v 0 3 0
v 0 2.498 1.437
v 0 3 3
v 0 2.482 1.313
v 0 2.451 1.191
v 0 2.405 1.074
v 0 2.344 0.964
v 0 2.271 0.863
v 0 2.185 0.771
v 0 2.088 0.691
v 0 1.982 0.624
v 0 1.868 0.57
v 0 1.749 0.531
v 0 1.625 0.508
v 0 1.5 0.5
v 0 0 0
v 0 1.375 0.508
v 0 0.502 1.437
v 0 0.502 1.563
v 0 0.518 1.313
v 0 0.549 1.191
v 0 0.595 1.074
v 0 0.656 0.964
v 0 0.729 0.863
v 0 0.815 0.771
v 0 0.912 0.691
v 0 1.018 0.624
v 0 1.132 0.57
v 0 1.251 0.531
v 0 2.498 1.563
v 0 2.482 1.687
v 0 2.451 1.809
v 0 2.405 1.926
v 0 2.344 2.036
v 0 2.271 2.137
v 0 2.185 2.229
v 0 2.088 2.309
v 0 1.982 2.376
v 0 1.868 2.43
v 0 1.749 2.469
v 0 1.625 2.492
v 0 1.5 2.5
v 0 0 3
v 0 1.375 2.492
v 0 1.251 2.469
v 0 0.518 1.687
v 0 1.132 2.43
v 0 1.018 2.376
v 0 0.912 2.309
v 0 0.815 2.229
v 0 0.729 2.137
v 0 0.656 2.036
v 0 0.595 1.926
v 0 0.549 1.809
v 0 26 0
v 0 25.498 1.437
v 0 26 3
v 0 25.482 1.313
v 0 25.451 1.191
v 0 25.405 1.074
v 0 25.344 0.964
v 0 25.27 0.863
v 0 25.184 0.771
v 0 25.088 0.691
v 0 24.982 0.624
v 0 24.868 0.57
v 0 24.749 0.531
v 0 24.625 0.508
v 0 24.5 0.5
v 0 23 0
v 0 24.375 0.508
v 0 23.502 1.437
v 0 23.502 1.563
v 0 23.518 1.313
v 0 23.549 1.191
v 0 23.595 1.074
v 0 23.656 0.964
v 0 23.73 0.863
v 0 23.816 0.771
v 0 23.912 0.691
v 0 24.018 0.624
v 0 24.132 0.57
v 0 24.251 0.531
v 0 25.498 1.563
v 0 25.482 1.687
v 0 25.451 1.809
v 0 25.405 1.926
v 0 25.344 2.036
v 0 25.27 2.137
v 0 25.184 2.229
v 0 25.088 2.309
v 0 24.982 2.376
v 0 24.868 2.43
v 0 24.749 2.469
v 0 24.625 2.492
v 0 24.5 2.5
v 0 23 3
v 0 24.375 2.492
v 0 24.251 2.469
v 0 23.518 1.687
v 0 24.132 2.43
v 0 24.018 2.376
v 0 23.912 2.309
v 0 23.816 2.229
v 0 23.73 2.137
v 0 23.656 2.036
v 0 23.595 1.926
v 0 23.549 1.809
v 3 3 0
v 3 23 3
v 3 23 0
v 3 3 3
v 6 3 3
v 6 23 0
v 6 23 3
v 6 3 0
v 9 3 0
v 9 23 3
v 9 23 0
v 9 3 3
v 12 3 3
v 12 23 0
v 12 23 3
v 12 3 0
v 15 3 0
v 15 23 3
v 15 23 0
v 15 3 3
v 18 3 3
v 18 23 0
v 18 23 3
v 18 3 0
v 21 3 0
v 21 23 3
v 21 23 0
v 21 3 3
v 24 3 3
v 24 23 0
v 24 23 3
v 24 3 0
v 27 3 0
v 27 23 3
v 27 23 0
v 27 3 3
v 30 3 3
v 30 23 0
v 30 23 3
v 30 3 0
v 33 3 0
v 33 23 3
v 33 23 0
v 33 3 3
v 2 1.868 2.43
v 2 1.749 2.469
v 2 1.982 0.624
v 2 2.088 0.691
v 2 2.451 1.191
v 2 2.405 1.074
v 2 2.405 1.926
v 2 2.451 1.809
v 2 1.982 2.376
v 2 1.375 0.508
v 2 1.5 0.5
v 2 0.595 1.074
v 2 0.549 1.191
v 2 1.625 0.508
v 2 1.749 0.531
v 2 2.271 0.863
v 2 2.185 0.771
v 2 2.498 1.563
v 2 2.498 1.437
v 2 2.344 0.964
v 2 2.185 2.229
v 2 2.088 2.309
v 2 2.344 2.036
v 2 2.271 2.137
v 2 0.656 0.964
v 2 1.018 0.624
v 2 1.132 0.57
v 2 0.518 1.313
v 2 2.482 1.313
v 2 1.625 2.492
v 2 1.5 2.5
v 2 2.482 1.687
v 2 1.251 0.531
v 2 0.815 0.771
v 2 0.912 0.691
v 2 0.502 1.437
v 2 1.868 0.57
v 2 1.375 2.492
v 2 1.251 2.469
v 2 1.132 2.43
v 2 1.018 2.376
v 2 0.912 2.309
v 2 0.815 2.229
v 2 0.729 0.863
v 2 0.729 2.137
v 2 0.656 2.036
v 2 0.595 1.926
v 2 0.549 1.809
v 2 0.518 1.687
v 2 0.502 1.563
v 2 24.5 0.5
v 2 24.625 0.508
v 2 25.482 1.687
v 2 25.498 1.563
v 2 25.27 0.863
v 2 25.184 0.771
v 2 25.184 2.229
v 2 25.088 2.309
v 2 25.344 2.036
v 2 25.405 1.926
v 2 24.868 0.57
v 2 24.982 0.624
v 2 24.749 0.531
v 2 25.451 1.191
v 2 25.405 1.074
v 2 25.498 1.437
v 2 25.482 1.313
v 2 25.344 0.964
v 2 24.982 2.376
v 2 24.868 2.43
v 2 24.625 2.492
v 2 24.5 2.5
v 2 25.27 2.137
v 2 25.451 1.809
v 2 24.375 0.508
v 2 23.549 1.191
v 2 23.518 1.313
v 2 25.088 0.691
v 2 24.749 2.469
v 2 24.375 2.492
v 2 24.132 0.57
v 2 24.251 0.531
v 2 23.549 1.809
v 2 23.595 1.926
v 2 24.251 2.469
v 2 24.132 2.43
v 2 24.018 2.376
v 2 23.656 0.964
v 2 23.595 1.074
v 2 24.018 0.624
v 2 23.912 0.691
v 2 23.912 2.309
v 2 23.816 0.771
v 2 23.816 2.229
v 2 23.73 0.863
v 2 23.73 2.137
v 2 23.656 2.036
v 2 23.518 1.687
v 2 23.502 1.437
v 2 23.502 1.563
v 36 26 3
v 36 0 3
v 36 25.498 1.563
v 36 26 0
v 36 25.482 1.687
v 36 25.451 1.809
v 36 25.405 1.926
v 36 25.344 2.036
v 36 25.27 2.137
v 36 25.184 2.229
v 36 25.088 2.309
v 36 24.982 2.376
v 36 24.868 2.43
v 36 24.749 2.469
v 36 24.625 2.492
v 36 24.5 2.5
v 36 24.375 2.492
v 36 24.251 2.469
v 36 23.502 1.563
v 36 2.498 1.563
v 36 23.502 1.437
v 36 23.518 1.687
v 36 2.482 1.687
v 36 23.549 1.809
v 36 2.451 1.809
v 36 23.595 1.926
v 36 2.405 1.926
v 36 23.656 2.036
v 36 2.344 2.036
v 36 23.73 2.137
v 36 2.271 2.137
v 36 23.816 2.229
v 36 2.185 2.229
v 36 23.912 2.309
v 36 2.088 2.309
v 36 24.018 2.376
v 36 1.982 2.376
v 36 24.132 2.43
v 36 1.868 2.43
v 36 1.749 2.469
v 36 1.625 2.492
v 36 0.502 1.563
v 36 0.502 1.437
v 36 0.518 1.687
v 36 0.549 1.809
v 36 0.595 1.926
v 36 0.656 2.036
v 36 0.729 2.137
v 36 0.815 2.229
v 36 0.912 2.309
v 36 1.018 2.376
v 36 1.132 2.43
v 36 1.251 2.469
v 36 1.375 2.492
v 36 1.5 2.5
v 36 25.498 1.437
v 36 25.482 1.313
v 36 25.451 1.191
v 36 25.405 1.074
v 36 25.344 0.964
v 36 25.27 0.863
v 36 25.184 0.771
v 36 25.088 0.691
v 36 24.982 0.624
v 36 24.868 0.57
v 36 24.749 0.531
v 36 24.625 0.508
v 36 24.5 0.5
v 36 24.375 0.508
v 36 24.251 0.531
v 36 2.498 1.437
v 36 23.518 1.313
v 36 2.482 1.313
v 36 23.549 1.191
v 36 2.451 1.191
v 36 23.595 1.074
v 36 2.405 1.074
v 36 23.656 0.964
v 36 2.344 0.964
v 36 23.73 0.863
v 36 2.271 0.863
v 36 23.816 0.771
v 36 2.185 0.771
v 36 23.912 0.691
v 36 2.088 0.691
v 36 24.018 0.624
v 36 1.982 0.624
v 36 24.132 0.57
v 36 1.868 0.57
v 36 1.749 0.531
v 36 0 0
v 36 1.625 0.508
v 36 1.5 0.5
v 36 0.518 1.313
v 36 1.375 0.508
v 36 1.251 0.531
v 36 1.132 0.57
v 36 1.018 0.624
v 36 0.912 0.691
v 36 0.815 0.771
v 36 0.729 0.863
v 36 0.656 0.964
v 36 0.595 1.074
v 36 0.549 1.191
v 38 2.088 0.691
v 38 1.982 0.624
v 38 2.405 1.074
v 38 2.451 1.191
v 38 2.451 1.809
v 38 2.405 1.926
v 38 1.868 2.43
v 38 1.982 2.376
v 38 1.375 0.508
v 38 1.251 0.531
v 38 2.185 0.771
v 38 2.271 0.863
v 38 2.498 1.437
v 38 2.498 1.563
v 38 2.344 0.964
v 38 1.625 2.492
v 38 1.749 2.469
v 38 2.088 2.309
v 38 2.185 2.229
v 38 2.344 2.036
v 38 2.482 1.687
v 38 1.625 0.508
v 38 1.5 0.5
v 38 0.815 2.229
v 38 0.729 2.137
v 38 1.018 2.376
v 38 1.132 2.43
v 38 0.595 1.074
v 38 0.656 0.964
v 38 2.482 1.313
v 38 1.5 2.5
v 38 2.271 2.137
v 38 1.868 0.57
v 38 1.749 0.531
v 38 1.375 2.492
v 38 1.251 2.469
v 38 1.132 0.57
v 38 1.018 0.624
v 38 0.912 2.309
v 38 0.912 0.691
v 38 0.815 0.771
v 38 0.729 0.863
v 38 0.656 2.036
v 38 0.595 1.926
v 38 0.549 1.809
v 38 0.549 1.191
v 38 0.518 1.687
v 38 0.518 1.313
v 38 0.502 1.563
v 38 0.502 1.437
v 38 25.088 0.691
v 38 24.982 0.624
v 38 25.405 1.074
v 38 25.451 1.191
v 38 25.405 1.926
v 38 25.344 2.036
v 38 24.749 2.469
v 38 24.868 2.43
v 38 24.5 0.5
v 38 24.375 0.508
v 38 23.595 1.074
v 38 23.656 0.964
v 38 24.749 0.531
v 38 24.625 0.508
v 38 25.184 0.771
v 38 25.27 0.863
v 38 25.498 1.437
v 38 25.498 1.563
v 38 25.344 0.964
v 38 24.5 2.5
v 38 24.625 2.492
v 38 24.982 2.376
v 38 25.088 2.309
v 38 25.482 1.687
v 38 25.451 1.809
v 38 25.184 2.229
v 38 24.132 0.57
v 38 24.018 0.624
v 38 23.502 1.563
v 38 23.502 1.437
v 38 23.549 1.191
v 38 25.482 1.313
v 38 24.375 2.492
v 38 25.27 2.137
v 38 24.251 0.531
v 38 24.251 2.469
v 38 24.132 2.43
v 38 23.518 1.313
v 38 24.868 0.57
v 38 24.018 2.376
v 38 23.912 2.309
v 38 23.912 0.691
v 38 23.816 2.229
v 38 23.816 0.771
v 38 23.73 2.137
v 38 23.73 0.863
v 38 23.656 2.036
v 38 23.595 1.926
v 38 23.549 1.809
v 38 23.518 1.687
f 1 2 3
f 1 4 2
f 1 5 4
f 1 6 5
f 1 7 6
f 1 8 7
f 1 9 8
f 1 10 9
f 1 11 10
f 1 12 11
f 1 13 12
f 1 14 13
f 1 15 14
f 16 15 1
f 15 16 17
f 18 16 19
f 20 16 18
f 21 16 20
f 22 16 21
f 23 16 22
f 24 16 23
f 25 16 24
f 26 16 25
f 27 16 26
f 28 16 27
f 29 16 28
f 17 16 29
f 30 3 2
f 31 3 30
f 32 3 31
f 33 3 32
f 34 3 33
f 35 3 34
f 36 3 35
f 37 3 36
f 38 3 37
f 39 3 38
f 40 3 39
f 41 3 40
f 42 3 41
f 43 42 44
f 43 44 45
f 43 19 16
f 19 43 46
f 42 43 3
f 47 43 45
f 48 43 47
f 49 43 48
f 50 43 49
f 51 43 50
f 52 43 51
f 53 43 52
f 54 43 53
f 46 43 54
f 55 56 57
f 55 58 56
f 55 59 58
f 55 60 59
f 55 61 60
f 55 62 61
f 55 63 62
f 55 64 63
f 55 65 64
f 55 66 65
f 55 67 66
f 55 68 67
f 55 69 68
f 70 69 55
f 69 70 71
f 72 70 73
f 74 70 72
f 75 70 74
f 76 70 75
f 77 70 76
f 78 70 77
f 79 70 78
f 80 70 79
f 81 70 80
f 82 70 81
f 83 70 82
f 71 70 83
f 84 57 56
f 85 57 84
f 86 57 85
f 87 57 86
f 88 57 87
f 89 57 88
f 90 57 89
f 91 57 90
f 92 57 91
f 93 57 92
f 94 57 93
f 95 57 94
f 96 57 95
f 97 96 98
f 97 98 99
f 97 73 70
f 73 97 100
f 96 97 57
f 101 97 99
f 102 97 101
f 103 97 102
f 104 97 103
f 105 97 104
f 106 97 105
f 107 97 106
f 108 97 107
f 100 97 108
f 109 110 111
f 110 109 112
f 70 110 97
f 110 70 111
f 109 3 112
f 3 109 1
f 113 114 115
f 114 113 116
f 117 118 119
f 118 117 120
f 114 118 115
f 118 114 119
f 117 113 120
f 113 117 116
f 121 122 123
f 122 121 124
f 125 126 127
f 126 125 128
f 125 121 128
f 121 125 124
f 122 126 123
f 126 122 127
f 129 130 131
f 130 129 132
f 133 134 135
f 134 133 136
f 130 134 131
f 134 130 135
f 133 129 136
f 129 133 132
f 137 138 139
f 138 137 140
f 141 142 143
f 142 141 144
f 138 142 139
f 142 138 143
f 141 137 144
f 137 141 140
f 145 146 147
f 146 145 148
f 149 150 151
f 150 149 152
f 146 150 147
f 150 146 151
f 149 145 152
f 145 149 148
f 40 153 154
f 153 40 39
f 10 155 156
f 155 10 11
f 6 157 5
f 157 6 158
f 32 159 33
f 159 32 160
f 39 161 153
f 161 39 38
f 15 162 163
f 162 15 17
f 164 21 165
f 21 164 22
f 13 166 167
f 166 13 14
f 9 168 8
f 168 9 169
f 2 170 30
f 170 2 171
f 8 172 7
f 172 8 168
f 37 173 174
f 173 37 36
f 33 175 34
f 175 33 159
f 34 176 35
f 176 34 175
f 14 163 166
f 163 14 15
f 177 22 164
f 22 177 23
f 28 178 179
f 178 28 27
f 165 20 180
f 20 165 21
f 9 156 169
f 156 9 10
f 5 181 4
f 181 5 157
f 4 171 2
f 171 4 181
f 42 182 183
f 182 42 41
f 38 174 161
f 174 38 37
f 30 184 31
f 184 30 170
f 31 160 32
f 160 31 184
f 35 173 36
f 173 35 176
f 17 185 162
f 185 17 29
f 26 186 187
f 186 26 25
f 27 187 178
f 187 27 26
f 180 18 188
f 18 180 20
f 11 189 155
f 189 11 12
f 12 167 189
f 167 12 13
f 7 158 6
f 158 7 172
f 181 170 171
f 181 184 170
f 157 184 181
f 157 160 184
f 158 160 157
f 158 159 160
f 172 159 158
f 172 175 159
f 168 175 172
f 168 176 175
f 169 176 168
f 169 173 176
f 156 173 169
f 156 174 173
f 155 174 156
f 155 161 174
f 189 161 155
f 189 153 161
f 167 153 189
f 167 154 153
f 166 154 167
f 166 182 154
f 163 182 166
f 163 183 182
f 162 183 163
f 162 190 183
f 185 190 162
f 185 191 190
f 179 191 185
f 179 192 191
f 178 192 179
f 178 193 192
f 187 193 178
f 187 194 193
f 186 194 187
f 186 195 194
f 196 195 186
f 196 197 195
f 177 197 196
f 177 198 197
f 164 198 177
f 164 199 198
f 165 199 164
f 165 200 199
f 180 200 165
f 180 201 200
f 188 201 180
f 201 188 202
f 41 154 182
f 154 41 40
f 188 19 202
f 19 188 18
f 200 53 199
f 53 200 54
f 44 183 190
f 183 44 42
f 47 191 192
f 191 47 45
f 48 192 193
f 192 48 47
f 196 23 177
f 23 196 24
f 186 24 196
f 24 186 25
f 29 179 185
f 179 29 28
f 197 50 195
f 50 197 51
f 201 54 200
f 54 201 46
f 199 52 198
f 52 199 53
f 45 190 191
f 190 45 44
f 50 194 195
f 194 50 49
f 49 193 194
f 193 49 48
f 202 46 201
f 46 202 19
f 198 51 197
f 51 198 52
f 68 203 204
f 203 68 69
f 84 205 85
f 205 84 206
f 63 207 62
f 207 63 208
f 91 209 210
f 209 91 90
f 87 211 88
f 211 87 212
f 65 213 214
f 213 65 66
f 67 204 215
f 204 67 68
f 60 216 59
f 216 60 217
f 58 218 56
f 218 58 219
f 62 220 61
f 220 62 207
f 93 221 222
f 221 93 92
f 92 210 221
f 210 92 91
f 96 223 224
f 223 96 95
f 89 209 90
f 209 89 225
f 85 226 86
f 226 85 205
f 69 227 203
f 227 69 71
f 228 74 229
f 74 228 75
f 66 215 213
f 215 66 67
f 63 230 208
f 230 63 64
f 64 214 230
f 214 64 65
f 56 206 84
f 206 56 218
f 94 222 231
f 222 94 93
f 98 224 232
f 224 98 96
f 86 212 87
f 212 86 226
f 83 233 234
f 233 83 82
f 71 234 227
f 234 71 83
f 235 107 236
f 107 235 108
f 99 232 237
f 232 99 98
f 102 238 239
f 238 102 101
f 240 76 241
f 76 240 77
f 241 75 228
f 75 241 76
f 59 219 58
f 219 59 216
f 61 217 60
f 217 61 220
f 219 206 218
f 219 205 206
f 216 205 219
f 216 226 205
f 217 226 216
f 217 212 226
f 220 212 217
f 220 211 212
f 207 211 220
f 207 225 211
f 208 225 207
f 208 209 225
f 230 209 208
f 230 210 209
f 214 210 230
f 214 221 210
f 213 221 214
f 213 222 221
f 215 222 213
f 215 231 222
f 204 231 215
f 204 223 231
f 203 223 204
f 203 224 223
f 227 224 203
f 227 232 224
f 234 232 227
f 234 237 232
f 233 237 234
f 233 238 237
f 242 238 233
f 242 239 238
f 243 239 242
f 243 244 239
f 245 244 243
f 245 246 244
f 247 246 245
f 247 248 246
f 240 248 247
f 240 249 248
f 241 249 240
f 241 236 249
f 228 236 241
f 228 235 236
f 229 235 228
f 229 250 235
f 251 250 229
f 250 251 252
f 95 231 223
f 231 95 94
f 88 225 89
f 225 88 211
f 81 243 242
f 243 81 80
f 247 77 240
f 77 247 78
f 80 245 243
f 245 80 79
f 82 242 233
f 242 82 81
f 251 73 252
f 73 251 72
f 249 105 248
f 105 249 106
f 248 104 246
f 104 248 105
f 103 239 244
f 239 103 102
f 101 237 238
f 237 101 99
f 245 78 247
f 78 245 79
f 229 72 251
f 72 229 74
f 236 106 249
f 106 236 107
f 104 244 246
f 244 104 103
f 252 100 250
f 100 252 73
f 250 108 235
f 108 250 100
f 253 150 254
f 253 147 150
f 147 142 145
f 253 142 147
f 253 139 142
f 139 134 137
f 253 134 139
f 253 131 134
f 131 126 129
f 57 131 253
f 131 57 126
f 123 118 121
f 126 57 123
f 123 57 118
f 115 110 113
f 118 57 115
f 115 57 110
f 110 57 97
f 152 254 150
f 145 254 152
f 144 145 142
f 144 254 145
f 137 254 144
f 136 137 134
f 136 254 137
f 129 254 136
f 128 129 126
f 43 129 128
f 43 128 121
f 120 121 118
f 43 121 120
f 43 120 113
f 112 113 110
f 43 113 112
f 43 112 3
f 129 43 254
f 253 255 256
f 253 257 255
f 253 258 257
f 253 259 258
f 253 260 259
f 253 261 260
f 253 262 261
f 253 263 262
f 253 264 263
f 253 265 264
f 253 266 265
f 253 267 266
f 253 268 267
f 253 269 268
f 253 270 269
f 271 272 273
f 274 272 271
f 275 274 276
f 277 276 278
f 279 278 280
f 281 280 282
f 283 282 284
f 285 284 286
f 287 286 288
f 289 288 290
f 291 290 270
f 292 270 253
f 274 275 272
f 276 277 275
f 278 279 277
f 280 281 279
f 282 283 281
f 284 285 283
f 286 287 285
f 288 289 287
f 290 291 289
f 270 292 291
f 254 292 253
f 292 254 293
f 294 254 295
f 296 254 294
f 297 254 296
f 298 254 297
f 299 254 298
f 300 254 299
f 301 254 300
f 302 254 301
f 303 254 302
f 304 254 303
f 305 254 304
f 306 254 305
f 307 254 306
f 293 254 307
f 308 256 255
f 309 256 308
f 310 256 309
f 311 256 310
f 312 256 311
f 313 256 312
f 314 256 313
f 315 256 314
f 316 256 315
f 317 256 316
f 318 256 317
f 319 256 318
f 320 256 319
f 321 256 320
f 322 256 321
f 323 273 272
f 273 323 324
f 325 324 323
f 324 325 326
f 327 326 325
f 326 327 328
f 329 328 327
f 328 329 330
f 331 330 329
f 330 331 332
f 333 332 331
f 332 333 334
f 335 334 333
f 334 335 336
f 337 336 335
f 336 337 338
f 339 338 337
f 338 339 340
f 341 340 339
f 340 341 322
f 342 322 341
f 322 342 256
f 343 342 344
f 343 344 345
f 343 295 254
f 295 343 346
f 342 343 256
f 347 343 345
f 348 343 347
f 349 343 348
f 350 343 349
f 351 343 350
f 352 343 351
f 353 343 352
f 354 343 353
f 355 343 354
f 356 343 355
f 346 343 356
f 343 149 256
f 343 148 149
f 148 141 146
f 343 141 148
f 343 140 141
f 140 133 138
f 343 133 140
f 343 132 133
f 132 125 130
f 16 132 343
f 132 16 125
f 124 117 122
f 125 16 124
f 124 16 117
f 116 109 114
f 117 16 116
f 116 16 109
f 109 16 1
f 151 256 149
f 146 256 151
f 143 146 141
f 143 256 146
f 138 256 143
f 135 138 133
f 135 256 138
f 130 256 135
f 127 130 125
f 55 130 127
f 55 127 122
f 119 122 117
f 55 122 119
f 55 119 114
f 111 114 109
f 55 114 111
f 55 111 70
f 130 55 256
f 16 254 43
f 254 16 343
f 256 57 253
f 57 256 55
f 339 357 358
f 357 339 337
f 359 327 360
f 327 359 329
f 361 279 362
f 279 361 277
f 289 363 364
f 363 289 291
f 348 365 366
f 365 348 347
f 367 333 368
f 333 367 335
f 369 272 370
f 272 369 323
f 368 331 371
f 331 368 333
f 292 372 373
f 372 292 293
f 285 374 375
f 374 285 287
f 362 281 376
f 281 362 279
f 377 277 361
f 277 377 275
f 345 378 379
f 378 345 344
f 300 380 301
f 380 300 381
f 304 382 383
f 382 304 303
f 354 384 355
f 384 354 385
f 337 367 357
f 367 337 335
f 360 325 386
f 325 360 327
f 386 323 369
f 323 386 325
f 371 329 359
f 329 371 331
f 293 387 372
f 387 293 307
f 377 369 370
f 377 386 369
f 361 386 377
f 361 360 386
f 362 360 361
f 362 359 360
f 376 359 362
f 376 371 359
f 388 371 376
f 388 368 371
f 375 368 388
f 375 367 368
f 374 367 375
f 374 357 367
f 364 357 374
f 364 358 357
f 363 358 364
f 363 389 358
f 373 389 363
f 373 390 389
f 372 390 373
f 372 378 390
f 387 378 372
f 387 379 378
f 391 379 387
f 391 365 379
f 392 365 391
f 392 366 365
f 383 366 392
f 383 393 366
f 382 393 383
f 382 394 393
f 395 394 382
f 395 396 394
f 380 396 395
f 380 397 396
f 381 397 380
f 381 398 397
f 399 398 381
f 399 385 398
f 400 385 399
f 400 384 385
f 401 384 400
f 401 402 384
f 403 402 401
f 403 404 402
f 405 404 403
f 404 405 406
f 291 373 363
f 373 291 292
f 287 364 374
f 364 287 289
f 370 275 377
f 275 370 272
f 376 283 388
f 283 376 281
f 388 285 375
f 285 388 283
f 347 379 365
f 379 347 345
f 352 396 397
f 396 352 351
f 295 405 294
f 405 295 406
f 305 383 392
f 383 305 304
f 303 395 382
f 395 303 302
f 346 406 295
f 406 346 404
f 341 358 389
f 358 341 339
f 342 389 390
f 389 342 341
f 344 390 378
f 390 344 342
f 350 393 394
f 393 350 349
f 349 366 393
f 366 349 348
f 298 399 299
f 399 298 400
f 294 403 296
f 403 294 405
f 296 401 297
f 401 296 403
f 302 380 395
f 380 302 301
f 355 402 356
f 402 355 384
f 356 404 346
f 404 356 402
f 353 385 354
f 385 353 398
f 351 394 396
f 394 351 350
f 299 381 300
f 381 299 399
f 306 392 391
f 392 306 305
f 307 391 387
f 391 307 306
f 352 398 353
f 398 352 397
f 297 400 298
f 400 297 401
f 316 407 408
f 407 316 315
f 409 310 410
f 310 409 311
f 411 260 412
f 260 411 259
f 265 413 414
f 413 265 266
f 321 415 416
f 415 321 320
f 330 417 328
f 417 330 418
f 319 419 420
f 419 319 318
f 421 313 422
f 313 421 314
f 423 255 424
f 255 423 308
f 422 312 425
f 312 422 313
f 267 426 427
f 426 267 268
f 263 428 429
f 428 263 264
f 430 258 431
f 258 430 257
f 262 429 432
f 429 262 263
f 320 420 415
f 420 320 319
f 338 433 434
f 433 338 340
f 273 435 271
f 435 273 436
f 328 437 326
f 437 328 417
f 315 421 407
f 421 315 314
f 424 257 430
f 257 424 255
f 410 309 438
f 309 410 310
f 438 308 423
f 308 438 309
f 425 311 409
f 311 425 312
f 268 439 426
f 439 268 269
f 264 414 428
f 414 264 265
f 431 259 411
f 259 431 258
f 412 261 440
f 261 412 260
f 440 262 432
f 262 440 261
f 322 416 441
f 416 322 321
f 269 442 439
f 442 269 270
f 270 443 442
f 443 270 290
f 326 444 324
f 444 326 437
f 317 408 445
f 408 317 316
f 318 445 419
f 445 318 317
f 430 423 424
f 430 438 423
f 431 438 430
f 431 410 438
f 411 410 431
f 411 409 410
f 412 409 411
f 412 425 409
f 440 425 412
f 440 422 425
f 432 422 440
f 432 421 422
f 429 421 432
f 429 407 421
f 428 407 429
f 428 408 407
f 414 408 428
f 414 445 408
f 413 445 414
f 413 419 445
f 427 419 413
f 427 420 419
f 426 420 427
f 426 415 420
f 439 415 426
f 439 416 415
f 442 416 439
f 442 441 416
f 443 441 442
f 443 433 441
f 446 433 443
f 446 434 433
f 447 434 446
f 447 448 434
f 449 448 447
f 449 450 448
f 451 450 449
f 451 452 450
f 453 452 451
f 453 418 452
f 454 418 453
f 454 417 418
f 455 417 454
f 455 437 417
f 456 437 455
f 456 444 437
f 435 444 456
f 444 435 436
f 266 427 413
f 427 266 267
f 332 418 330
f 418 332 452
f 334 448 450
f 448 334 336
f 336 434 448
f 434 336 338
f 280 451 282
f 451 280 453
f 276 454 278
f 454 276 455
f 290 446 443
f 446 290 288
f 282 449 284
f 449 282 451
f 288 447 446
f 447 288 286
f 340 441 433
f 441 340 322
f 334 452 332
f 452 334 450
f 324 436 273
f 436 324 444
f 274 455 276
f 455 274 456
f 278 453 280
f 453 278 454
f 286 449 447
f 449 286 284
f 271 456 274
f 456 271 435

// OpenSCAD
$fn=50;

block_width=3;
block_length=20;
block_count=6;

r1=1;
l=2;

difference (){
    cube([block_count*block_width*2,block_length+2*block_width,block_width]);
    for (i=[0:block_count-1])
        translate([i*2*block_width,block_width,-0.1])
                cube([block_width,block_length,block_width+0.2]); 
    translate([-2,block_width,-0.1])  
        cube([block_width,block_length,block_width+0.2]); 
    rotate([0,90,0]){
        translate([-block_width/2, block_width/2, -1]){
            cylinder(h = l+1, r = r1);
            translate([0,block_length+block_width,0])
                cylinder(h = l+1, r = r1);
        }
    }
}
rotate([0,90,0]){
    translate([-block_width/2, block_width/2, 2*block_count*block_width]){
        cylinder(h = l, r = r1);
    translate([0,block_length+block_width,0])
        cylinder(h = l, r = r1);
    }
}
